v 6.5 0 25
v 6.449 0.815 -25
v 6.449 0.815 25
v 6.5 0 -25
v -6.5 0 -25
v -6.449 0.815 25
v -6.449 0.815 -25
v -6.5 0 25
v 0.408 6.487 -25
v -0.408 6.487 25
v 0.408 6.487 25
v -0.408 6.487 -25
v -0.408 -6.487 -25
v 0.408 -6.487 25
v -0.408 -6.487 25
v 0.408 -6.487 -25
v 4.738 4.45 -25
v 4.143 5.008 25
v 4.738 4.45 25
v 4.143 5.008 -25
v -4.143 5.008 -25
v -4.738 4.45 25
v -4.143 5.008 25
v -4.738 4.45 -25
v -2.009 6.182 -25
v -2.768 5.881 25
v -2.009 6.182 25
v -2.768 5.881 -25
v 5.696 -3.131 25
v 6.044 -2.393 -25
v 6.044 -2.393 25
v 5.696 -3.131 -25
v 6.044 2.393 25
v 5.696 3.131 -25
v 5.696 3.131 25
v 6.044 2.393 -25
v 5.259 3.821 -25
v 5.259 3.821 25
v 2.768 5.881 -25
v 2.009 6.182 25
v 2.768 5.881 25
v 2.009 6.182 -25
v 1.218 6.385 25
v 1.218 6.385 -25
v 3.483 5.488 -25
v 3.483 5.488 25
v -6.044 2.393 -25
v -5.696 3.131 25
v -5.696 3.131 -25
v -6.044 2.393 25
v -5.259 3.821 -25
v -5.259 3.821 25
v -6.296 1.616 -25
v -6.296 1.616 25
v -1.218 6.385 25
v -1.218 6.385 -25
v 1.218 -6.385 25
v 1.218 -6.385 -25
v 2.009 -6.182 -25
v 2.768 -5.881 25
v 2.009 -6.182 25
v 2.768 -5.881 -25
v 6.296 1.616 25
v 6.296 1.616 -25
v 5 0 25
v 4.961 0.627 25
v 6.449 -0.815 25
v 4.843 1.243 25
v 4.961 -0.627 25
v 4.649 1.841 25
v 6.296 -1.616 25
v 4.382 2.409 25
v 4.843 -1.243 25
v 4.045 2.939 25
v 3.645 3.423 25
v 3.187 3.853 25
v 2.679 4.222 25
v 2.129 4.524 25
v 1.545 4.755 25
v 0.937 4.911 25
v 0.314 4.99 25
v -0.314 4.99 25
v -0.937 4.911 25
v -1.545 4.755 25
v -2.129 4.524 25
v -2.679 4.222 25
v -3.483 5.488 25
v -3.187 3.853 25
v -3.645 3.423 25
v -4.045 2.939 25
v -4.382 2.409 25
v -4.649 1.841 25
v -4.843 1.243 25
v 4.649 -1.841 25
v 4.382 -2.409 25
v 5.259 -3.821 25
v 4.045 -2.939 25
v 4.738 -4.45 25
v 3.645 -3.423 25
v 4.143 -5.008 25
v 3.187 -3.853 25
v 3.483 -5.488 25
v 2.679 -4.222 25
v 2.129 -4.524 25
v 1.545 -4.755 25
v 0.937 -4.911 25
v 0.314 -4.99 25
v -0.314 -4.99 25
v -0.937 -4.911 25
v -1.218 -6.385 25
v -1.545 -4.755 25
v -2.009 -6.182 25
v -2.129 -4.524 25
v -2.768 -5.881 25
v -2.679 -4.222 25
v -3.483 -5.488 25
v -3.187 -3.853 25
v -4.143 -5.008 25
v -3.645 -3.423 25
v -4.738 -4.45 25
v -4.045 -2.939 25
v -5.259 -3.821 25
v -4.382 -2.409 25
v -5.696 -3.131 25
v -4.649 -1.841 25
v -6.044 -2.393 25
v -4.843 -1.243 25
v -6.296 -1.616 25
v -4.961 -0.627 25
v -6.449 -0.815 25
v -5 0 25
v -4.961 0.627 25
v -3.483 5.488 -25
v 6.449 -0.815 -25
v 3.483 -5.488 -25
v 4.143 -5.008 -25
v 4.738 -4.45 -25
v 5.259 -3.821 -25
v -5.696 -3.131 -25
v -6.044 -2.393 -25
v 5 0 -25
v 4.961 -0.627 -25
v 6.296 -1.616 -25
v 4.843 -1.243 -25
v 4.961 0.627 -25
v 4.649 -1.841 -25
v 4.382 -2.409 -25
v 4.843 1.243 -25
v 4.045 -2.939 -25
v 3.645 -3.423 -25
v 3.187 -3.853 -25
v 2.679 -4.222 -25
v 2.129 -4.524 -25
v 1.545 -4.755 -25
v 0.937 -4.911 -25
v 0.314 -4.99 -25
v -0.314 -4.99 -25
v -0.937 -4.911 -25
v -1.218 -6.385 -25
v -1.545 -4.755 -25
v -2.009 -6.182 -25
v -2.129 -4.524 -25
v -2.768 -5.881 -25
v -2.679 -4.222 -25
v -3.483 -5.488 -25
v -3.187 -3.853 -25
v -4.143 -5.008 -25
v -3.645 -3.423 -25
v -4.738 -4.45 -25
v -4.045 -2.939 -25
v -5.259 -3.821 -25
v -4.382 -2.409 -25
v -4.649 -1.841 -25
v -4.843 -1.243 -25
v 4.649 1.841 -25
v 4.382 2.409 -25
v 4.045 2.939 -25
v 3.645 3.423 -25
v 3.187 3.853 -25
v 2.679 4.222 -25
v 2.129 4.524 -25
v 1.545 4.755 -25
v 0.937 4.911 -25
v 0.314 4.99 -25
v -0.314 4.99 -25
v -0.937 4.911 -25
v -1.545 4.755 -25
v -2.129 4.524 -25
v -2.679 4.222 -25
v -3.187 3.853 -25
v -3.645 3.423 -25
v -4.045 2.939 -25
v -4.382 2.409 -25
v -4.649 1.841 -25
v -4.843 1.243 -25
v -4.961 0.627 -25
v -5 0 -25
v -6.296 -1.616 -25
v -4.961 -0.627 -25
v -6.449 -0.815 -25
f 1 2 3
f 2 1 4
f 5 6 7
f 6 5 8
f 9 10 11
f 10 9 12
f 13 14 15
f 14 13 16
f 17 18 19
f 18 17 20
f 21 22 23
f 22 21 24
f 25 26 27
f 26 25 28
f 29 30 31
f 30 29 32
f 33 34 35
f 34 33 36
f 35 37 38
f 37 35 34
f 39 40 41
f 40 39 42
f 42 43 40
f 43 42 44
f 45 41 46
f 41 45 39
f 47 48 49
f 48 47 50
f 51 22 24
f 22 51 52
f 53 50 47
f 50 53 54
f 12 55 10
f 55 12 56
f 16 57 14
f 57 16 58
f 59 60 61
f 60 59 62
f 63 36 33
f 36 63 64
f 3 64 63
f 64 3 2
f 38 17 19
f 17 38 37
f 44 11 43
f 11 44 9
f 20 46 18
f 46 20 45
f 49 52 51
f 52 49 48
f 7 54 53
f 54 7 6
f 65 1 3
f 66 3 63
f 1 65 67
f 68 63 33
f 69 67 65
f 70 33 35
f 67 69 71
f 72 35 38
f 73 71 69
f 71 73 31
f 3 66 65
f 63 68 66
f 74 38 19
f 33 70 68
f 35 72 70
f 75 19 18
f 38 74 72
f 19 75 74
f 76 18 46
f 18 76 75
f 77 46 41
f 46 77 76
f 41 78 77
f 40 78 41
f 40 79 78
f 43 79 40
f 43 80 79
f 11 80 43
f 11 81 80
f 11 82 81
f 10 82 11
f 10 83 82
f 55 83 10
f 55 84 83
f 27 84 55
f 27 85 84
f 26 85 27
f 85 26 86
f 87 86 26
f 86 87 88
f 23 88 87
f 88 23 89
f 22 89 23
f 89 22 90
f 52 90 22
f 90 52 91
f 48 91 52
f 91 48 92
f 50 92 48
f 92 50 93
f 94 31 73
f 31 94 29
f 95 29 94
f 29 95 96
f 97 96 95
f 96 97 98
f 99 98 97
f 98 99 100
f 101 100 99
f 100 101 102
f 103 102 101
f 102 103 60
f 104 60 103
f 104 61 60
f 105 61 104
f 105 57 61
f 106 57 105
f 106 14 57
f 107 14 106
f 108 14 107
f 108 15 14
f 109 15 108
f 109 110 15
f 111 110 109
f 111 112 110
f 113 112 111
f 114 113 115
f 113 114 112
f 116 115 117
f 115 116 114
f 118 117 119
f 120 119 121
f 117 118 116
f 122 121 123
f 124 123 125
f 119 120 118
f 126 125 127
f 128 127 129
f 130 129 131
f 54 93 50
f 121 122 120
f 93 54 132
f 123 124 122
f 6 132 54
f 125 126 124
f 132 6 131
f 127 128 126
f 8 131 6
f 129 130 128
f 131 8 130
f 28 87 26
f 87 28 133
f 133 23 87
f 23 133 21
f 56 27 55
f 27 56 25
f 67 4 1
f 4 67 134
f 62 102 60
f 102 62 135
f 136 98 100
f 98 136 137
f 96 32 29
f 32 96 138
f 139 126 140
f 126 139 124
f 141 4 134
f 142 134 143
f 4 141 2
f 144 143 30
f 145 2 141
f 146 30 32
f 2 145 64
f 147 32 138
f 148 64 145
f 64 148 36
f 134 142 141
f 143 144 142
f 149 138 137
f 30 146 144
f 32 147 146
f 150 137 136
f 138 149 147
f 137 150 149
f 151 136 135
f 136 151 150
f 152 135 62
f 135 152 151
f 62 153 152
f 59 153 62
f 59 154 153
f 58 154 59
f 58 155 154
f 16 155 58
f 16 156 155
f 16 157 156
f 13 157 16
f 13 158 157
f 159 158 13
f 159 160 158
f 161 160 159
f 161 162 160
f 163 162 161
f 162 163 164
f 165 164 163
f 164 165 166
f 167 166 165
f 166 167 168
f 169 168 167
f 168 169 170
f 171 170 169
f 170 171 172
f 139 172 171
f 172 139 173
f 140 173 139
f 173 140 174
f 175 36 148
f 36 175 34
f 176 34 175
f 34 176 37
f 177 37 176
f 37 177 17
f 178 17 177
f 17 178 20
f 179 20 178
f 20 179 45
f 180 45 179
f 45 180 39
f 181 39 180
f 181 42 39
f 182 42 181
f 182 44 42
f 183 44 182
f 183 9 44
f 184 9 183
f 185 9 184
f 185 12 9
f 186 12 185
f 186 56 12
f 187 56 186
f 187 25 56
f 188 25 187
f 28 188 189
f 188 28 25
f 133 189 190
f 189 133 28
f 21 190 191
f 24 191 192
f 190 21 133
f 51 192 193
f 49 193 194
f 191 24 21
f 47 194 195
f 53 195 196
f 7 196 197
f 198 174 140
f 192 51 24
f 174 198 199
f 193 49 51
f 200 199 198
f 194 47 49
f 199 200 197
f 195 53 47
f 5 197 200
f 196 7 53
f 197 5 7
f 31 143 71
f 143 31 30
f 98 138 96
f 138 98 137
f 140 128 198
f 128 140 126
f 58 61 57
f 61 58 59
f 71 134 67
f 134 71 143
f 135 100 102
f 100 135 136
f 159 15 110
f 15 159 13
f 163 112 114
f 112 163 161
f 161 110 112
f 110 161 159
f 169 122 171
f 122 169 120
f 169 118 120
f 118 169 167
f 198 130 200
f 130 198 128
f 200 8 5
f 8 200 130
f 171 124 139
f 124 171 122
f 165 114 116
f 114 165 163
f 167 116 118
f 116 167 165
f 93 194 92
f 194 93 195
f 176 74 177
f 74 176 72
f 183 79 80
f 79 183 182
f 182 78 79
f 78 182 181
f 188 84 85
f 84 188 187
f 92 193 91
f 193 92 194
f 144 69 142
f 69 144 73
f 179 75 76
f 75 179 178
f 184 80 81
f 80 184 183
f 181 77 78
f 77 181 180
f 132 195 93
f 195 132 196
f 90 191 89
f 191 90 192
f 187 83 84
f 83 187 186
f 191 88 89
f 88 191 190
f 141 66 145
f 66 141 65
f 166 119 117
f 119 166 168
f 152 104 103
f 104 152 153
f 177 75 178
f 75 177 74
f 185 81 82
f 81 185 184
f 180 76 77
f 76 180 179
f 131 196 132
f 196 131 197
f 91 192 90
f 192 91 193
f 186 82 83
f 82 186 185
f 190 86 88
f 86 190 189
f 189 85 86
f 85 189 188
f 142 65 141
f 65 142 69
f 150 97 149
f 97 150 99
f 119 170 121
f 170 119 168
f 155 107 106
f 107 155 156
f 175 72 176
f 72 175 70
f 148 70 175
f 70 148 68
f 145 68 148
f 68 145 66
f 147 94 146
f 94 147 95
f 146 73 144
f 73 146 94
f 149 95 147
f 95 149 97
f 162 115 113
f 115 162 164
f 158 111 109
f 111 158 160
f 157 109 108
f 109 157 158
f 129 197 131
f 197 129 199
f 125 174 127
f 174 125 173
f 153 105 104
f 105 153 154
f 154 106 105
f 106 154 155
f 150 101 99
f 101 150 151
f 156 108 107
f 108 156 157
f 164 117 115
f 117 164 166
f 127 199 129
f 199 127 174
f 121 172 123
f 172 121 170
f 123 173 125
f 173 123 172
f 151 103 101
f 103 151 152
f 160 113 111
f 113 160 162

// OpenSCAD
$fn = 50;


difference() {
	union() {
		translate(v = [0, 0, -25.0000000000]) {
			cylinder(h = 50, r = 6.5000000000);
		}
	}
	union() {
		translate(v = [0, 0, -100.0000000000]) {
			cylinder(h = 200, r = 5);
		}
	}
}
